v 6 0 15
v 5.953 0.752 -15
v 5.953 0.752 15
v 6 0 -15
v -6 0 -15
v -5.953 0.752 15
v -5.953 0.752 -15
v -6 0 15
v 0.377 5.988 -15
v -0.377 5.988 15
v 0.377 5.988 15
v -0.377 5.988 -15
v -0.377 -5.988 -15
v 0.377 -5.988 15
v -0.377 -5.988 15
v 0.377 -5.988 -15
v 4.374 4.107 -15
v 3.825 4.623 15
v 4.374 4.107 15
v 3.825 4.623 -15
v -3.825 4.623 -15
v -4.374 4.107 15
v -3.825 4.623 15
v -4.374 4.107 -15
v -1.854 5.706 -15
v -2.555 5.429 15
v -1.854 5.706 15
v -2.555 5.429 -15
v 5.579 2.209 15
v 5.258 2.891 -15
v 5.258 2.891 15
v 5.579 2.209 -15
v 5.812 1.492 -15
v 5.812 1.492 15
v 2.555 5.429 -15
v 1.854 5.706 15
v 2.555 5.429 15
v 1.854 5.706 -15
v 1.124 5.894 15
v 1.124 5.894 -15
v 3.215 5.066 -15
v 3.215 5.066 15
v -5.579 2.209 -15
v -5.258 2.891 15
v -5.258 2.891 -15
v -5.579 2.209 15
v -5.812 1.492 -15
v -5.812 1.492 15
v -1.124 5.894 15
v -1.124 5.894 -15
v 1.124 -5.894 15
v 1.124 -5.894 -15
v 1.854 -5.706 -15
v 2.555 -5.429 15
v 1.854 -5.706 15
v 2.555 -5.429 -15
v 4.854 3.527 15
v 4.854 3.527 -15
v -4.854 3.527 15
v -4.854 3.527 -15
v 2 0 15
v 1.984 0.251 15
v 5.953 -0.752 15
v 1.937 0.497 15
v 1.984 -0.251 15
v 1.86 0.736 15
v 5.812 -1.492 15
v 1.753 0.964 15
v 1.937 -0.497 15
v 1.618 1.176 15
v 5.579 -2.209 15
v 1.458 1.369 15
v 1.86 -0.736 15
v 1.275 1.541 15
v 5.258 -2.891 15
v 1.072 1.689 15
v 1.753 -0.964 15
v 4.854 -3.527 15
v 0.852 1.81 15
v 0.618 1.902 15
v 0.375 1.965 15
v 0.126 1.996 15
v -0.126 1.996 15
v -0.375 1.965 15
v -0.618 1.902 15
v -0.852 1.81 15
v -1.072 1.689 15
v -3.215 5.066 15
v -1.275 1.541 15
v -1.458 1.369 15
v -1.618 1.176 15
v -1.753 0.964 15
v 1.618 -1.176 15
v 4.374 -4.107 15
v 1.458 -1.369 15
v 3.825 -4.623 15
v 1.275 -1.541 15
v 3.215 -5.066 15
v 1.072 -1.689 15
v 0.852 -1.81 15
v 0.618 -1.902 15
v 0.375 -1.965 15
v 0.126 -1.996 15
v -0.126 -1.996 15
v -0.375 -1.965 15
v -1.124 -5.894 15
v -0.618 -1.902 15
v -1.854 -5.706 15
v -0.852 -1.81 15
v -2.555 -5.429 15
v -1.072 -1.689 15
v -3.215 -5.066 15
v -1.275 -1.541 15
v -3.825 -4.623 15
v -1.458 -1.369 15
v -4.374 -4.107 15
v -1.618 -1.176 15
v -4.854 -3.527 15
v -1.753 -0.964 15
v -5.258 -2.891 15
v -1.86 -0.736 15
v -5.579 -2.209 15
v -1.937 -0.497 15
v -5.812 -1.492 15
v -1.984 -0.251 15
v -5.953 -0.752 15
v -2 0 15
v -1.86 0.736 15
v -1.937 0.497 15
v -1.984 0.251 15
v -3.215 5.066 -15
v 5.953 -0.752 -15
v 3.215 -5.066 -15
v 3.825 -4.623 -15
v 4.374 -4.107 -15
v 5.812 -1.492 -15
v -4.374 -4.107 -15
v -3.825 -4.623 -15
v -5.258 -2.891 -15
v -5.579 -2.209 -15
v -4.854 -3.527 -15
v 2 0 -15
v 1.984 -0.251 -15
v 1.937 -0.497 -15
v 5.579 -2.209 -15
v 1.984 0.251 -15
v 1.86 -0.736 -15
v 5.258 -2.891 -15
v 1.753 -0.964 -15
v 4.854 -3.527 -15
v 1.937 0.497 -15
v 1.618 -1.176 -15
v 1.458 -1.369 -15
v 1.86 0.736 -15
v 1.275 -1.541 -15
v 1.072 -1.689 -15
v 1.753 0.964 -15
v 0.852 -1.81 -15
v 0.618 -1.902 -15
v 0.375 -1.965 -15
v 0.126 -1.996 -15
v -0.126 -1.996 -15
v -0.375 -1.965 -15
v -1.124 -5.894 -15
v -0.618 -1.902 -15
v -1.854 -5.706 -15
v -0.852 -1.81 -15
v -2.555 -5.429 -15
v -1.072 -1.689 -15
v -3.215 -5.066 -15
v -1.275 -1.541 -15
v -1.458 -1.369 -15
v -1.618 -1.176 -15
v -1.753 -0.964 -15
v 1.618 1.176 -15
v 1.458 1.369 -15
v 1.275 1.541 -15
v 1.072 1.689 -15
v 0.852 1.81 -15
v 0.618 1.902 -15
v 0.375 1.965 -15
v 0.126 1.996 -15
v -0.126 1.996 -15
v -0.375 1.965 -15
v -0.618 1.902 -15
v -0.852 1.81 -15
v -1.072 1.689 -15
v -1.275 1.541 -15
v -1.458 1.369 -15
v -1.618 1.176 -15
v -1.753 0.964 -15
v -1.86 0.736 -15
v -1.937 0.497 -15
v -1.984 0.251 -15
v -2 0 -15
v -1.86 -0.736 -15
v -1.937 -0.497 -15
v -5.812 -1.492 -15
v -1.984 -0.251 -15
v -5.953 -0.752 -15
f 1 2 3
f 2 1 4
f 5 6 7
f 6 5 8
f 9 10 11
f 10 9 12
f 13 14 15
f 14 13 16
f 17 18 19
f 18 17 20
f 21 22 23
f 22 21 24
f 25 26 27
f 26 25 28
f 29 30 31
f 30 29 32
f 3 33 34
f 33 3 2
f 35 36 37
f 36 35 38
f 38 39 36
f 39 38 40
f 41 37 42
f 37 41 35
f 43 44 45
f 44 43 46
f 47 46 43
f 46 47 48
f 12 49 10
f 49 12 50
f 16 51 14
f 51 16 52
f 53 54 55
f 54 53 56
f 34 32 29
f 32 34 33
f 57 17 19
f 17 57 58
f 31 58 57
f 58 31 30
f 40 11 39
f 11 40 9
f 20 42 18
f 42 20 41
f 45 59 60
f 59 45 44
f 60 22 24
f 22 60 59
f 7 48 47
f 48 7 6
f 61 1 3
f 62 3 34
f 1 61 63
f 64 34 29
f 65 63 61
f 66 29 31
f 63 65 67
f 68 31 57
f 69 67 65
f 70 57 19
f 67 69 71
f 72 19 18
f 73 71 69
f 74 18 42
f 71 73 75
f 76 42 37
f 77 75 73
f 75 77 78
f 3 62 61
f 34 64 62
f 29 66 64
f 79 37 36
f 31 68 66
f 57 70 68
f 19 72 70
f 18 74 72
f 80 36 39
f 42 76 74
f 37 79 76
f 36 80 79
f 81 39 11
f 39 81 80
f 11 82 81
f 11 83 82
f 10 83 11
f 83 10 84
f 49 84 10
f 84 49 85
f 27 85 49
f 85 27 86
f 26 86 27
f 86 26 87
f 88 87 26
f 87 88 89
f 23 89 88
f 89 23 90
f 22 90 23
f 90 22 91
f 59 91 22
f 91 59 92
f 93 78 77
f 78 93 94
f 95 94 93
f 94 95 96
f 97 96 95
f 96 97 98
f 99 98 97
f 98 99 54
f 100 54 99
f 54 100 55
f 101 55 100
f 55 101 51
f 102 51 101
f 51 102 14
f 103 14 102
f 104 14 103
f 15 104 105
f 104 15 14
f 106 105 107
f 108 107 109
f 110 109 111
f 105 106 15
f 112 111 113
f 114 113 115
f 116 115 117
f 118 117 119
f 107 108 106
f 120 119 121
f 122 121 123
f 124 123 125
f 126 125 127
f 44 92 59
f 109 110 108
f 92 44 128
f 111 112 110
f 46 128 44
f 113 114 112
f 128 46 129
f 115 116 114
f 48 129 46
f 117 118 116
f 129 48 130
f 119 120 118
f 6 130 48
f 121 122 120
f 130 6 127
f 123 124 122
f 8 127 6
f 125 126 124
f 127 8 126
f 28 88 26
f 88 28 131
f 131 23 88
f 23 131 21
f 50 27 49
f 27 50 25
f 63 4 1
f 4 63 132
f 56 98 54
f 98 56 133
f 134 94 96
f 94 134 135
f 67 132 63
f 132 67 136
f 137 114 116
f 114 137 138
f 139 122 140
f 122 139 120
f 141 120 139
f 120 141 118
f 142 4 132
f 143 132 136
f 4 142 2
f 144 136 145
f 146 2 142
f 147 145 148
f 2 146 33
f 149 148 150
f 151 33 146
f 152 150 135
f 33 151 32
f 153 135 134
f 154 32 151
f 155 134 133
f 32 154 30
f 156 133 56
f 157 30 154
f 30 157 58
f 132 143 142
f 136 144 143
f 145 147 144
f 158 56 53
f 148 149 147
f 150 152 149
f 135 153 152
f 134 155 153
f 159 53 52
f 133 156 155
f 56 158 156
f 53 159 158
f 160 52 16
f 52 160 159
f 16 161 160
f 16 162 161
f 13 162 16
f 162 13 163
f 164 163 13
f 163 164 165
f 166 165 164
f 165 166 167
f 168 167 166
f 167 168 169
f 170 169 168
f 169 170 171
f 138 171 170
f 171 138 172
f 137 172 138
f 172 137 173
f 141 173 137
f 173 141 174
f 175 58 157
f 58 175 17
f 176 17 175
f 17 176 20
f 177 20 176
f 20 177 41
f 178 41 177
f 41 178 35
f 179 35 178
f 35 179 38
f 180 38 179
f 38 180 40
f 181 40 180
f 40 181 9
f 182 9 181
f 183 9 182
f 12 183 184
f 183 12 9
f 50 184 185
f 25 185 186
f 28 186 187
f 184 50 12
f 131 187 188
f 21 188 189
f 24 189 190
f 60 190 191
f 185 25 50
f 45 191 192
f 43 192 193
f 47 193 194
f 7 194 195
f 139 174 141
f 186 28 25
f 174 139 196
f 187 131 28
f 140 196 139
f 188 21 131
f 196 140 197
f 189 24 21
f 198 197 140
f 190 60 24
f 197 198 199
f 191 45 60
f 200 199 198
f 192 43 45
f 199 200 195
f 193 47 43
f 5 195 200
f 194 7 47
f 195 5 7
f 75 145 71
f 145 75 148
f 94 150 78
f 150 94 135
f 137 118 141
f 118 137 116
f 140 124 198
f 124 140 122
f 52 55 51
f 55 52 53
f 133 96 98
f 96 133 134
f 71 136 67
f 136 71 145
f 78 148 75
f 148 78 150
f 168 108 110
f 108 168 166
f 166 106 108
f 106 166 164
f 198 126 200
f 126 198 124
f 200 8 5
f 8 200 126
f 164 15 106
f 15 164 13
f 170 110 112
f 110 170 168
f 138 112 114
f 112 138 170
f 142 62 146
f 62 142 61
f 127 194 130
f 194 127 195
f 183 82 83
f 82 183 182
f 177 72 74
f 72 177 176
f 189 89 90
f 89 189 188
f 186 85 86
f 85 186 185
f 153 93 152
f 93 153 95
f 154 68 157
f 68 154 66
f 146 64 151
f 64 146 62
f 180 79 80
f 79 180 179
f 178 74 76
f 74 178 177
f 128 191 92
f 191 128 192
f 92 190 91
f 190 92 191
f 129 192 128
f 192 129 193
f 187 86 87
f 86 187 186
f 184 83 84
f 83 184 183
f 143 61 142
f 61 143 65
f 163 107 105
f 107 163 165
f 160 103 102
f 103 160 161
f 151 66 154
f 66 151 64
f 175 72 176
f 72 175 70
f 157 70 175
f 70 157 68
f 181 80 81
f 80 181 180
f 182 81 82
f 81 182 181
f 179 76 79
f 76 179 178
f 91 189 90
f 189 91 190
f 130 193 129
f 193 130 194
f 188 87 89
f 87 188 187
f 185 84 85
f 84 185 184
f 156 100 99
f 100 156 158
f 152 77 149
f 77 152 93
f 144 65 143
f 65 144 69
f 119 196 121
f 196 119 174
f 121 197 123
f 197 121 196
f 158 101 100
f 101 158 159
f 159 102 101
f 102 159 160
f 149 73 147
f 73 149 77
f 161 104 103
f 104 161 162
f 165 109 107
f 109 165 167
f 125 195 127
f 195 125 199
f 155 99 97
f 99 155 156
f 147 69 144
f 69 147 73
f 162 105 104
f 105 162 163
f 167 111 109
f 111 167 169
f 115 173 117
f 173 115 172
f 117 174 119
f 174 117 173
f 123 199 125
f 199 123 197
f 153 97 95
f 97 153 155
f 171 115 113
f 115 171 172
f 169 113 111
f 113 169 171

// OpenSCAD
$fn = 50;


difference() {
	union() {
		translate(v = [0, 0, -15.0000000000]) {
			cylinder(h = 30, r = 6.0000000000);
		}
	}
	union() {
		translate(v = [0, 0, -100.0000000000]) {
			cylinder(h = 200, r = 2);
		}
	}
}
